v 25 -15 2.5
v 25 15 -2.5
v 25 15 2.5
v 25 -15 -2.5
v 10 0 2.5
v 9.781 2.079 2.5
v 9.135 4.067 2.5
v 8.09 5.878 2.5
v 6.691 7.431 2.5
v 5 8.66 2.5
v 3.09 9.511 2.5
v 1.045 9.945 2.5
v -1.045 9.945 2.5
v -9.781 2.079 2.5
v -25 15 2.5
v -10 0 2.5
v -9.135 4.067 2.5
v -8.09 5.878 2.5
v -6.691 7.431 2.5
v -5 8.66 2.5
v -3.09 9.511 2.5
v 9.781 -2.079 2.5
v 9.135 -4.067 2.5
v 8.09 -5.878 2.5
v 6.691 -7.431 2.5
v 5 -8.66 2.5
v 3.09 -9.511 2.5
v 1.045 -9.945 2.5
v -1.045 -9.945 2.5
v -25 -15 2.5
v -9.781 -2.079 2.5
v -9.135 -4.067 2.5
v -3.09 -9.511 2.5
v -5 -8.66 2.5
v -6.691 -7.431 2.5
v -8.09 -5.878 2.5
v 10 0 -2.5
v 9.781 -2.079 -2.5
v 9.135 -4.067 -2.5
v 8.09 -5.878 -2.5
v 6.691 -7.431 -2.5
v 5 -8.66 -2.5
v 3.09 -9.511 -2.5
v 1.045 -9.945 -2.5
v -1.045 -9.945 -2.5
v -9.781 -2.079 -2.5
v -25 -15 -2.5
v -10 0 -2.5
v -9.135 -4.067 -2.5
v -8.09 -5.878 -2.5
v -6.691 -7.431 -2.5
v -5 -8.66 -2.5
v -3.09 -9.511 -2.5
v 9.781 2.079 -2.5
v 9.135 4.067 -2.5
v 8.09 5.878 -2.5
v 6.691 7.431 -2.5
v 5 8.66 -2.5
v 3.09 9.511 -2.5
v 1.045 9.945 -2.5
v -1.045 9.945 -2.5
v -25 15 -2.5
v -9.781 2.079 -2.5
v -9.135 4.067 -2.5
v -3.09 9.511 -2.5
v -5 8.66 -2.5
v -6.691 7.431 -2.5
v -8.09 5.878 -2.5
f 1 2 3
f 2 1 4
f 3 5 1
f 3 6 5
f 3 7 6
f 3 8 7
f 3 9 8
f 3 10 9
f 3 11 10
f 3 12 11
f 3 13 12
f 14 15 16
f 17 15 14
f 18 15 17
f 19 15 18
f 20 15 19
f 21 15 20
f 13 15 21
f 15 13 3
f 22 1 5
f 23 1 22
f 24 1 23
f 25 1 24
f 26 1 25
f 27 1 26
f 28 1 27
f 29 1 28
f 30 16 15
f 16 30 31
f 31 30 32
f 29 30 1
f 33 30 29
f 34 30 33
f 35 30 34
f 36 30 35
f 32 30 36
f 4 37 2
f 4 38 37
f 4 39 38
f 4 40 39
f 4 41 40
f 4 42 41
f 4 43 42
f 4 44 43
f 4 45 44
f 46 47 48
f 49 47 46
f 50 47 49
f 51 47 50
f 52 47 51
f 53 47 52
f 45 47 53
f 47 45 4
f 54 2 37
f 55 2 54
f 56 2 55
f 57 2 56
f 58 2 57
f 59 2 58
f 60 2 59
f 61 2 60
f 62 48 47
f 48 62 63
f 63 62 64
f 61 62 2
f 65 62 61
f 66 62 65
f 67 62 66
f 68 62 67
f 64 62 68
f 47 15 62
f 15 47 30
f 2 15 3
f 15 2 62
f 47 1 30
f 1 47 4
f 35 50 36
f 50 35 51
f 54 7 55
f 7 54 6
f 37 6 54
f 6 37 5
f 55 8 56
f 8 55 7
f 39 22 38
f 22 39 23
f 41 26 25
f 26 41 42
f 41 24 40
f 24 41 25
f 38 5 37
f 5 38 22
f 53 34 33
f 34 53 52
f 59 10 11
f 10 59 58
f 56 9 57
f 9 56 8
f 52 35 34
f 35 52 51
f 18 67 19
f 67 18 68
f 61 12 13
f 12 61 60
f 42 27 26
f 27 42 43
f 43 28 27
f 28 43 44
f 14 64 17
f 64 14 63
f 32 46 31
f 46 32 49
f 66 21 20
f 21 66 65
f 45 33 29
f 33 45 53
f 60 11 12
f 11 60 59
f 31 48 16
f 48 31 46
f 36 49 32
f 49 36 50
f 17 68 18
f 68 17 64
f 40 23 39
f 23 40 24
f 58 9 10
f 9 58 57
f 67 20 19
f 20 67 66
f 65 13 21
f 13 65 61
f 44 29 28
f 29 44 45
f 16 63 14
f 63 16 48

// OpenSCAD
// Define parameters for the rectangular plate with a hole
plate_length = 50;  // Length of the rectangular plate
plate_width = 30;   // Width of the rectangular plate
plate_thickness = 5; // Thickness of the rectangular plate
hole_diameter = 20; // Diameter of the centered circular hole

// Function to create a rectangular plate with a centered hole
module rectangular_plate_with_hole() {
    difference() {
        cube([plate_length, plate_width, plate_thickness], center = true);
        cylinder(r = hole_diameter / 2, h = plate_thickness + 1, center = true);
    }
}

// Generate a single rectangular plate with a hole
rectangular_plate_with_hole();
